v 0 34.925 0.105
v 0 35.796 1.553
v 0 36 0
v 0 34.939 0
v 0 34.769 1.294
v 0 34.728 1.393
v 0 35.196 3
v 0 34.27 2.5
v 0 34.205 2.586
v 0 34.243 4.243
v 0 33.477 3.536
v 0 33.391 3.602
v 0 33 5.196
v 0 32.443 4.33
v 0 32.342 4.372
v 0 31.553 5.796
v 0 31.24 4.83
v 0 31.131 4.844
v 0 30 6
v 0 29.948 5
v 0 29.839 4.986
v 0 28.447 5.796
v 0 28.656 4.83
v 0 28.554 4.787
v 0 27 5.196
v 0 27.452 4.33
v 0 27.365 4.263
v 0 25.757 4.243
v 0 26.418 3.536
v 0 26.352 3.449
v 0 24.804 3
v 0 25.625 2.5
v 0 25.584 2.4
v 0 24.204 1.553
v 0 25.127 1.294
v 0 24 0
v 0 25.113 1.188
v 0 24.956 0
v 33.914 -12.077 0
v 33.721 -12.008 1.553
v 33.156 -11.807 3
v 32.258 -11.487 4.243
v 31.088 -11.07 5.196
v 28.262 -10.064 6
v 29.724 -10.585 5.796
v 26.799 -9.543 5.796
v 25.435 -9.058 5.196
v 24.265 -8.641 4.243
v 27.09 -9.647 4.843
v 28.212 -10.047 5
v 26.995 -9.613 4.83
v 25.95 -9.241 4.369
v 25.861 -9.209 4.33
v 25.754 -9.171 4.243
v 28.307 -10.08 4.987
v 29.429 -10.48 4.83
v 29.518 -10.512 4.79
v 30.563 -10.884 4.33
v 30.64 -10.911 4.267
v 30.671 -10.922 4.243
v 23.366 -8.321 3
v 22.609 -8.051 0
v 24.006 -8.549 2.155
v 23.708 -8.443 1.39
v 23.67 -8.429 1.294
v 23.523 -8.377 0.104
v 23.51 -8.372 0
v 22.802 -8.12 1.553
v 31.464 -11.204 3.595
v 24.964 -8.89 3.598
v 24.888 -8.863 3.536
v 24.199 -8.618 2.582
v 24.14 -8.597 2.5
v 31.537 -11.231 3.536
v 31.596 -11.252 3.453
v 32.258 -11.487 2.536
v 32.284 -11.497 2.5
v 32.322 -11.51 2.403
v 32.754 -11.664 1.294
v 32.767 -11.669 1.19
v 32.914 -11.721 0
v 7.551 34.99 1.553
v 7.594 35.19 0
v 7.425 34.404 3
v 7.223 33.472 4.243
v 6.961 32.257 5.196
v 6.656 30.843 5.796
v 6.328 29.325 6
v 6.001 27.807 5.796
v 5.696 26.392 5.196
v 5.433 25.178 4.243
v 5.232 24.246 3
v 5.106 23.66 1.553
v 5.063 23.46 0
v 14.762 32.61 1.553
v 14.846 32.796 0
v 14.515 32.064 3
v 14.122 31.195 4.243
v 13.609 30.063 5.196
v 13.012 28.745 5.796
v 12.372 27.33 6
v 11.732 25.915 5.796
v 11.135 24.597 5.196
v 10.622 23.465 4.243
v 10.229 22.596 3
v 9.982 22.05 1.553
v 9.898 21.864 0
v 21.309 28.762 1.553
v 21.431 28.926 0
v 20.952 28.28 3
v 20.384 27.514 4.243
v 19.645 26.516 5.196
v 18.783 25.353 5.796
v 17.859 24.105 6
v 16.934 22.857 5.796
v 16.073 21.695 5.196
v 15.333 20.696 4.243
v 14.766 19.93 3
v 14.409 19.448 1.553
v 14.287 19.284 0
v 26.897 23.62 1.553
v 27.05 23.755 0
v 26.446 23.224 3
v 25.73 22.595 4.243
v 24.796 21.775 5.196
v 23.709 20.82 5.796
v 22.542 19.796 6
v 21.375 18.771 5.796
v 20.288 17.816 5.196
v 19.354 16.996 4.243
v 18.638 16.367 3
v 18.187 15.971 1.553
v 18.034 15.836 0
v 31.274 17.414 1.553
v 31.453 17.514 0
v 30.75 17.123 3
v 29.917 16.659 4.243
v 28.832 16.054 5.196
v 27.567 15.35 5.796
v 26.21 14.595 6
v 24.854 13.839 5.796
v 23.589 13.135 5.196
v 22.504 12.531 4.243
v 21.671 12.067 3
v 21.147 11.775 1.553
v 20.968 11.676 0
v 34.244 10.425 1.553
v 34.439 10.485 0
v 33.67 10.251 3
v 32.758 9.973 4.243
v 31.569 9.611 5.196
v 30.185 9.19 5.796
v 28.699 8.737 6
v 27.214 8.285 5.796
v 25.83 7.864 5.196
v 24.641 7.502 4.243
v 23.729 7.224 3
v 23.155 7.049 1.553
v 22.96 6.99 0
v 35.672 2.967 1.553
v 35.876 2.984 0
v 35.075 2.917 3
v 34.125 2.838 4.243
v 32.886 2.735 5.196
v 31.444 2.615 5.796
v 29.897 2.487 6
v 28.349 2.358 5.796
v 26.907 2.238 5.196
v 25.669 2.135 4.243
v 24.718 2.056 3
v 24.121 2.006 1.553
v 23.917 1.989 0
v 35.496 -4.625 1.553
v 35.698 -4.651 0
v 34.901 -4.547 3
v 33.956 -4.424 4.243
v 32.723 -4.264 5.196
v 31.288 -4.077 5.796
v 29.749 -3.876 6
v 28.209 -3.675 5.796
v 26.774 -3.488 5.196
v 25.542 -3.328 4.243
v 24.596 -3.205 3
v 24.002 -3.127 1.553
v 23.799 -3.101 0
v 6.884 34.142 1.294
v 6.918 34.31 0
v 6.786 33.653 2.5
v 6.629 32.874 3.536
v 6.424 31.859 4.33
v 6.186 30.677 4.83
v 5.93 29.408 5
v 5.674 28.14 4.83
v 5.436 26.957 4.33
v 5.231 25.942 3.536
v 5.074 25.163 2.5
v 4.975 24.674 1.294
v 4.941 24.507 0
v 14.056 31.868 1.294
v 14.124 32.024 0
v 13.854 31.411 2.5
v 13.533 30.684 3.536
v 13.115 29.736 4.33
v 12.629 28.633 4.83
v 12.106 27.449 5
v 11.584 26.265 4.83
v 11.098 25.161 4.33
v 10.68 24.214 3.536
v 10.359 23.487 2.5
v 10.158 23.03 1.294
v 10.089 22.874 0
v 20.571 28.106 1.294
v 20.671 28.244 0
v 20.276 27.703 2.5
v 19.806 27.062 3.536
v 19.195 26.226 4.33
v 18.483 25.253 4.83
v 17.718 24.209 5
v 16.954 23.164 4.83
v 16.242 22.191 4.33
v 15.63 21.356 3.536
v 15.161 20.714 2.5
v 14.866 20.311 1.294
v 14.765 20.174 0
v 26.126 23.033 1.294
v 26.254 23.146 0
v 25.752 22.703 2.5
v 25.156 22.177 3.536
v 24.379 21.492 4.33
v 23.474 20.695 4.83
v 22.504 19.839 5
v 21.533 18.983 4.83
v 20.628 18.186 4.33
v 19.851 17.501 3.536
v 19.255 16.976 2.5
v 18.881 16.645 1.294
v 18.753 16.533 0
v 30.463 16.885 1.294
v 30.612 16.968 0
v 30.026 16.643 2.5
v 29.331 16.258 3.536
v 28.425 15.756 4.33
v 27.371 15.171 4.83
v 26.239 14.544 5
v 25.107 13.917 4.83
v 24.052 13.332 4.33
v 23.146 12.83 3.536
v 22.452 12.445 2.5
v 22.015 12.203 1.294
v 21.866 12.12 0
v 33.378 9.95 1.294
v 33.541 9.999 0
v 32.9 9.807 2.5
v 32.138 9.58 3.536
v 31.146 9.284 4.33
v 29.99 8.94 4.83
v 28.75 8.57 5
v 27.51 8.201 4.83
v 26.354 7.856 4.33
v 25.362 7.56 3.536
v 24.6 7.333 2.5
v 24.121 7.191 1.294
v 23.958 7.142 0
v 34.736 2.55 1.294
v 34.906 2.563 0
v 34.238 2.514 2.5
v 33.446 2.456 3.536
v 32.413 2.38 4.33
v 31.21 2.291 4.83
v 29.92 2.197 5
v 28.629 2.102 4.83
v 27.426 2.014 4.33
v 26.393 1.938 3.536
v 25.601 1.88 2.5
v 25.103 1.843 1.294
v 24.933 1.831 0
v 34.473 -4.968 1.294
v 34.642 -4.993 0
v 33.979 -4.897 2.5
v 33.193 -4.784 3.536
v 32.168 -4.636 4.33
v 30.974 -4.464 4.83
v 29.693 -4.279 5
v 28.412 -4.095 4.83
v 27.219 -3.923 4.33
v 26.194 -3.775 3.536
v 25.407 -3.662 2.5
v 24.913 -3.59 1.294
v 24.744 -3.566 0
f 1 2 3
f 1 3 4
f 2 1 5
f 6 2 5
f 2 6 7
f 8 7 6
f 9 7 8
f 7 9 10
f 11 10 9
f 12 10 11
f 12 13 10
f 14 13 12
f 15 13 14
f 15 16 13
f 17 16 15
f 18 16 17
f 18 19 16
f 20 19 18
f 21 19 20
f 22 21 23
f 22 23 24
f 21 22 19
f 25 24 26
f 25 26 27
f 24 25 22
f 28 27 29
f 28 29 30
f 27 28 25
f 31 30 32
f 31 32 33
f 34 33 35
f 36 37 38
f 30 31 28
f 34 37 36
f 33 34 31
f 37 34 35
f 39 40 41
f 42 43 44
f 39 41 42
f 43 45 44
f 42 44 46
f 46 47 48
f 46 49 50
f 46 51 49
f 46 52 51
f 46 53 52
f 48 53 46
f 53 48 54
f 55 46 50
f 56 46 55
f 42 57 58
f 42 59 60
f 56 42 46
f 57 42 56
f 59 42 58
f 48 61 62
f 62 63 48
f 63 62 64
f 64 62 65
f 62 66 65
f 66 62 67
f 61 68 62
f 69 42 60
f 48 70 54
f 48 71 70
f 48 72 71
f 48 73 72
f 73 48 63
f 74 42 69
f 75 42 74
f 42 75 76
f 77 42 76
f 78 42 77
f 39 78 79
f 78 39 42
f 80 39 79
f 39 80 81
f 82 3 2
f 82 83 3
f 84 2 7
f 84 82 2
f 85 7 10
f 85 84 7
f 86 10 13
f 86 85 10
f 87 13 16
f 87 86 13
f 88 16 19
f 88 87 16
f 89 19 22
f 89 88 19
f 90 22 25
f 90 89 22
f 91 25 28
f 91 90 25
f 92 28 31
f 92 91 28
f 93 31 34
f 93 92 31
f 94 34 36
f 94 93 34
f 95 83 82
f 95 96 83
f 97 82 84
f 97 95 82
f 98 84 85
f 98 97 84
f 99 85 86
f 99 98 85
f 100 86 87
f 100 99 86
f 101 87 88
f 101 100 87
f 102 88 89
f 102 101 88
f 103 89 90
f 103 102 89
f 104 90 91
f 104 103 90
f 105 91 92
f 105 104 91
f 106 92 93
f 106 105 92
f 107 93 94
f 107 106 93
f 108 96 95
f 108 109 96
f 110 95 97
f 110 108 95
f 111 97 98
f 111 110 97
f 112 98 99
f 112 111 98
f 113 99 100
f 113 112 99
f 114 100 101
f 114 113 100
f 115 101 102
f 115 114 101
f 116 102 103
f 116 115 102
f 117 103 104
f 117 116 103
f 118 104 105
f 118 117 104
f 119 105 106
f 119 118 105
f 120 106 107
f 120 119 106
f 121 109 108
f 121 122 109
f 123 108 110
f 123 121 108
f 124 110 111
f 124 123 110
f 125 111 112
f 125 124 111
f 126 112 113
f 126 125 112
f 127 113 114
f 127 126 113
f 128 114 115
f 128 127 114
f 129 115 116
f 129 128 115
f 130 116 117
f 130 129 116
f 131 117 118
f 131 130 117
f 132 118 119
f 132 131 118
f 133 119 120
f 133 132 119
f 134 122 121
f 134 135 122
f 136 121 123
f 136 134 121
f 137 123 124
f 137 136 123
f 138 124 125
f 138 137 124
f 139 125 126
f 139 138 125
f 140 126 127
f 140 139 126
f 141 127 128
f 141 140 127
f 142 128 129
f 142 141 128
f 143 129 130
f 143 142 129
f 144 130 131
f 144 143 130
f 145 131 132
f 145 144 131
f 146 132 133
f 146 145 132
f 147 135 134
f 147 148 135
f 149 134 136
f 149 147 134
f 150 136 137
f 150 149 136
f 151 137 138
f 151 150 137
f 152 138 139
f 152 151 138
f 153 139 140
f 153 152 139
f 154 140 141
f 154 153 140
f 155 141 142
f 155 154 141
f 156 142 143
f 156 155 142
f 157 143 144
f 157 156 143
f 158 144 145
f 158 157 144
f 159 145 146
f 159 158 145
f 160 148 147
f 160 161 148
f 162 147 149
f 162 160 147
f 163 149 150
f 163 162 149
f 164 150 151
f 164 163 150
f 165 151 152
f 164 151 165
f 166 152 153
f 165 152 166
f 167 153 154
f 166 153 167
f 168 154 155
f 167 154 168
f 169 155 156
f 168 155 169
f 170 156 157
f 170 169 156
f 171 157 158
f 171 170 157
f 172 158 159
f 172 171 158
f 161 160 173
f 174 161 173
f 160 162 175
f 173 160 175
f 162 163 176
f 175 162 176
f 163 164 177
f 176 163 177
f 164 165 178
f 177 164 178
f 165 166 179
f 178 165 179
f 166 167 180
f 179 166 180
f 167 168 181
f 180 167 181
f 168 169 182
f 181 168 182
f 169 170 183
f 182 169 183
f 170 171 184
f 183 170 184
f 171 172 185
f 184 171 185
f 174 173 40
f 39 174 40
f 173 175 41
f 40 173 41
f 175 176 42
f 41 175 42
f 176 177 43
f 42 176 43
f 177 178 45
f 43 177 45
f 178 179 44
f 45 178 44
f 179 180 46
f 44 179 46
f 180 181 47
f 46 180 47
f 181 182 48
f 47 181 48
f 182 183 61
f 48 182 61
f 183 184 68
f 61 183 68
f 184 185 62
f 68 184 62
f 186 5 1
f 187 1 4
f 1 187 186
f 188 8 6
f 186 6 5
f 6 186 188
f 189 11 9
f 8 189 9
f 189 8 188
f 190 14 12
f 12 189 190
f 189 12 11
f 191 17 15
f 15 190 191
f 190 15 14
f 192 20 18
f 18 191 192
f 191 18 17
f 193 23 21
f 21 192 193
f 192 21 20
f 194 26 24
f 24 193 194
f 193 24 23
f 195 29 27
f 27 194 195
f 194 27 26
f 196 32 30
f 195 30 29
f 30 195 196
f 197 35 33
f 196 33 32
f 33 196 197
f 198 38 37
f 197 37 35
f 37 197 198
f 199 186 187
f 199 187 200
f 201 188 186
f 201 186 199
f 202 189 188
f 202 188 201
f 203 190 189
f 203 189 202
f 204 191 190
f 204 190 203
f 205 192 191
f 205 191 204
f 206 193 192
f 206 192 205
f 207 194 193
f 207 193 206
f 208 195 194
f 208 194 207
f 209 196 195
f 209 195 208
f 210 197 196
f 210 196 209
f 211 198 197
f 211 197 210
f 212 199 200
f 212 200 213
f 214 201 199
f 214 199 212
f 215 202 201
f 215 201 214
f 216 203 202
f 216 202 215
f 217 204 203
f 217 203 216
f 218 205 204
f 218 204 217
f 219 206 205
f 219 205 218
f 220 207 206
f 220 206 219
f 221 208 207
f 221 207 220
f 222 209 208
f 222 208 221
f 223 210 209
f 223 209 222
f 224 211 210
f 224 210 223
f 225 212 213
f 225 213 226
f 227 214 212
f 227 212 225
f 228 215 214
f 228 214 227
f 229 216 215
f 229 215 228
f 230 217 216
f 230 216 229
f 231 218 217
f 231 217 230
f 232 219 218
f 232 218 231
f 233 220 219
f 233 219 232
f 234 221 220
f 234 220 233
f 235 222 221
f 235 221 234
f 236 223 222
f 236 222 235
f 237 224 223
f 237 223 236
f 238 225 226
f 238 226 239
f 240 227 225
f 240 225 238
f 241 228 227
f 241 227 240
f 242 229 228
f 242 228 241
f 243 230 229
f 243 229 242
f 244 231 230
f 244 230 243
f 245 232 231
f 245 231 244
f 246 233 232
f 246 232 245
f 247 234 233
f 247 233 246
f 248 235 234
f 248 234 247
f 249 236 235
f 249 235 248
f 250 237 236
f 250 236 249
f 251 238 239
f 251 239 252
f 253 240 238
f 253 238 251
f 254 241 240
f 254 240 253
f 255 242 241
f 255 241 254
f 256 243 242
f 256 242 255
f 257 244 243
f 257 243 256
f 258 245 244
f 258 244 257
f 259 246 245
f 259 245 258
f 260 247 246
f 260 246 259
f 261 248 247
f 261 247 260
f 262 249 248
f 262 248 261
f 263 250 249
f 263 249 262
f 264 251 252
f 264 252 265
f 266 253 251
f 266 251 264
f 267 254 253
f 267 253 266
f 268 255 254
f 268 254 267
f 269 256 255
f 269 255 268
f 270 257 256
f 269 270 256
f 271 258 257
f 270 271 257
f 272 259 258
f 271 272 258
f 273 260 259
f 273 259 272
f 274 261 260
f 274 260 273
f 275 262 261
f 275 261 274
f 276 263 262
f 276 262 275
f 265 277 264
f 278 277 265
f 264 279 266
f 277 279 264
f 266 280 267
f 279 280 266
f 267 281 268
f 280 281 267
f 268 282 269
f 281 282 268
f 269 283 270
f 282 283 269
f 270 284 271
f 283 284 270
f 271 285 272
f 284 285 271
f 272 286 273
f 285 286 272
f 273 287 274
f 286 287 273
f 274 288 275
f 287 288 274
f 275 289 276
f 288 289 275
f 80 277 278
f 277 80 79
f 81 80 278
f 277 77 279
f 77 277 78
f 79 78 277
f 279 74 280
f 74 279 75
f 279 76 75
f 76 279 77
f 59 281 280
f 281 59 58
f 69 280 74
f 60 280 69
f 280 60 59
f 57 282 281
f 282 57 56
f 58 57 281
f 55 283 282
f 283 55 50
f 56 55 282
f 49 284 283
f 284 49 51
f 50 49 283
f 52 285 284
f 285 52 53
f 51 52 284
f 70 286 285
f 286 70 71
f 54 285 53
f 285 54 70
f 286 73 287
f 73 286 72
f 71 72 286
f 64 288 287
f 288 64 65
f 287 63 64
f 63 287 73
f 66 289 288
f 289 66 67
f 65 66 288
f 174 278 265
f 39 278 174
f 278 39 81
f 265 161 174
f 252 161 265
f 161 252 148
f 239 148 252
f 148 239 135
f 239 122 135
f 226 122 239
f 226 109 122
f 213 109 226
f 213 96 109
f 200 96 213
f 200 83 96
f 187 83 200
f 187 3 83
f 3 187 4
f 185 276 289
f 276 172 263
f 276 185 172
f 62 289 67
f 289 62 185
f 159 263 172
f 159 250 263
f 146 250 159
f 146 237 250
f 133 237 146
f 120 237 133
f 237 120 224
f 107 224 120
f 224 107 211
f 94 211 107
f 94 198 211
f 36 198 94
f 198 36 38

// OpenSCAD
// file: ../build_environments.scad
// build_environments.scad: modules to build level sections
//

module pool(diameter=10.0, wall_height=2.0, step_width=3.0, connections=[])
{
    difference() {
        union() {
        difference() {
            cylinder(h=0.5,r1=diameter+step_width,r2=diameter+step_width,$fn=48);
            translate([0,0,-0.1])
                cylinder(h=0.7,r1=diameter,r2=diameter,$fn=48);
        }
        difference() {
            cylinder(h=wall_height,r1=diameter+step_width+1.0,r2=diameter+step_width+1.0,$fn=48);
            translate([0,0,-0.1])
                cylinder(h=wall_height+0.2,r1=diameter+step_width,r2=diameter+step_width,$fn=48);
        }
        }
    
        for (c = connections)
        {
            rotate([0,90,0]) {
                angle = atan2(c[1],c[0]);
                rotate([-angle,0,0]) {
                    cylinder(h=diameter+5.0,r1=c[2],r2=c[2],$fn=48);
                }
            }
        }
    }
}

module straight(length=10.0, width=2.0, dy1=0.0, dy2=0.0, dz=0.0)
{
    dims = [0, 0, 0, 0, 0, (dz/length)];
    matrix = [
        [ 1, dims[0], dims[1], 0 ],
        [ dims[2], 1, dims[4], 0 ],
        [ dims[5], dims[3], 1, 0 ],
        [ 0, 0, 0, 1 ]
    ];
    multmatrix(matrix)
    difference() {
        translate([dy1,0,0])
        union() {
            rotate([0,90,0]) {
                difference() {
                    cylinder(h=(length-dy1-dy2),r1=width+1.0,r2=width+1.0,$fn=24);
                    translate([0,0,-0.1])
                        cylinder(h=(length-dy1-dy2+0.2),r1=width,r2=width,$fn=24);
                }
                difference() {
                    cylinder(h=1.0,r1=width+2.0,r2=width+2.0,$fn=24);
                    translate([0,0,-0.1])
                        cylinder(h=1.2,r1=width,r2=width,$fn=24);
                }
                translate([0,0,(length-dy1-dy2)-1.0]) {
                    difference() {
                        cylinder(h=1.0,r1=width+2.0,r2=width+2.0,$fn=24);
                        translate([0,0,-0.1])
                            cylinder(h=1.2,r1=width,r2=width,$fn=24);
                    }
                }
            }
        }
        translate([0,0,-(2*width+4.0)/2])
            cube([3*length,3*length,2*width+4.0],center=true);
    }
}

module curve(p0=[0,0], center=[0,0], dir=1, angle=0.0, width=2.0)
{
    radius = sqrt((p0[0]-center[0])*(p0[0]-center[0]) + (p0[1]-center[1])*(p0[1]-center[1]));
    if (dir == 0) {
        difference() {
            rotate([0,0,-90])
            difference() {
                rotate_extrude(angle = angle, convexity = 10, $fn=32)
                    translate([radius, 0, 0])
                        circle(r = width+1.0,$fn=24);
                rotate([0,0,-1.0])
                    rotate_extrude(angle = angle+2.0, convexity = 10, $fn=32)
                        translate([radius, 0, 0])
                            circle(r = width,$fn=24);
            }
            translate([0,0,-(2*width+4.0)/2])
                cube([5*radius,5*radius,2*width+4.0],center=true);
        }
    }
    else {
        difference() {
            rotate([0,0,90])
            difference() {
                rotate_extrude(angle = -angle, convexity = 10, $fn=32)
                    translate([radius, 0, 0])
                        circle(r = width+1.0,$fn=24);
                rotate([0,0,1.0])
                    rotate_extrude(angle = -angle-2.0, convexity = 10, $fn=32)
                        translate([radius, 0, 0])
                            circle(r = width,$fn=24);
            }
            translate([0,0,-(2*width+4.0)/2])
                cube([5*radius,5*radius,2*width+4.0],center=true);
        }
    }

}

// test pool
//pool(diameter=12.0000, wall_height=3.0000, step_width=3.0000, connections=[[0.0000,-26.0000,2.0000], [23.6074,0.0000,2.0000]]);

// test straight, slope
//straight(length=26.0000, width=2.0000, dy1=11.8322, dy2=6.7082, dz=0.0000);
//straight(length=29.1549, width=12.0000, dy1=0.0000, dy2=0.0000, dz=-15.0000);

// test curve
//curve(p0=[23.6074, 0.0000], center=[23.6074, 5.0000], dir=0, angle=60.1011, width=2.0000);
//curve(p0=[33.6426, 12.4219], center=[37.9771, 9.9295], dir=1, angle=120.4627, width=2.0000);
// main file
use <../build_environments.scad>;
curve(p0=[-28.8790, -290.8160], center=[-57.1843, -300.7563], dir=1, angle=109.6012, width=5.0000);
